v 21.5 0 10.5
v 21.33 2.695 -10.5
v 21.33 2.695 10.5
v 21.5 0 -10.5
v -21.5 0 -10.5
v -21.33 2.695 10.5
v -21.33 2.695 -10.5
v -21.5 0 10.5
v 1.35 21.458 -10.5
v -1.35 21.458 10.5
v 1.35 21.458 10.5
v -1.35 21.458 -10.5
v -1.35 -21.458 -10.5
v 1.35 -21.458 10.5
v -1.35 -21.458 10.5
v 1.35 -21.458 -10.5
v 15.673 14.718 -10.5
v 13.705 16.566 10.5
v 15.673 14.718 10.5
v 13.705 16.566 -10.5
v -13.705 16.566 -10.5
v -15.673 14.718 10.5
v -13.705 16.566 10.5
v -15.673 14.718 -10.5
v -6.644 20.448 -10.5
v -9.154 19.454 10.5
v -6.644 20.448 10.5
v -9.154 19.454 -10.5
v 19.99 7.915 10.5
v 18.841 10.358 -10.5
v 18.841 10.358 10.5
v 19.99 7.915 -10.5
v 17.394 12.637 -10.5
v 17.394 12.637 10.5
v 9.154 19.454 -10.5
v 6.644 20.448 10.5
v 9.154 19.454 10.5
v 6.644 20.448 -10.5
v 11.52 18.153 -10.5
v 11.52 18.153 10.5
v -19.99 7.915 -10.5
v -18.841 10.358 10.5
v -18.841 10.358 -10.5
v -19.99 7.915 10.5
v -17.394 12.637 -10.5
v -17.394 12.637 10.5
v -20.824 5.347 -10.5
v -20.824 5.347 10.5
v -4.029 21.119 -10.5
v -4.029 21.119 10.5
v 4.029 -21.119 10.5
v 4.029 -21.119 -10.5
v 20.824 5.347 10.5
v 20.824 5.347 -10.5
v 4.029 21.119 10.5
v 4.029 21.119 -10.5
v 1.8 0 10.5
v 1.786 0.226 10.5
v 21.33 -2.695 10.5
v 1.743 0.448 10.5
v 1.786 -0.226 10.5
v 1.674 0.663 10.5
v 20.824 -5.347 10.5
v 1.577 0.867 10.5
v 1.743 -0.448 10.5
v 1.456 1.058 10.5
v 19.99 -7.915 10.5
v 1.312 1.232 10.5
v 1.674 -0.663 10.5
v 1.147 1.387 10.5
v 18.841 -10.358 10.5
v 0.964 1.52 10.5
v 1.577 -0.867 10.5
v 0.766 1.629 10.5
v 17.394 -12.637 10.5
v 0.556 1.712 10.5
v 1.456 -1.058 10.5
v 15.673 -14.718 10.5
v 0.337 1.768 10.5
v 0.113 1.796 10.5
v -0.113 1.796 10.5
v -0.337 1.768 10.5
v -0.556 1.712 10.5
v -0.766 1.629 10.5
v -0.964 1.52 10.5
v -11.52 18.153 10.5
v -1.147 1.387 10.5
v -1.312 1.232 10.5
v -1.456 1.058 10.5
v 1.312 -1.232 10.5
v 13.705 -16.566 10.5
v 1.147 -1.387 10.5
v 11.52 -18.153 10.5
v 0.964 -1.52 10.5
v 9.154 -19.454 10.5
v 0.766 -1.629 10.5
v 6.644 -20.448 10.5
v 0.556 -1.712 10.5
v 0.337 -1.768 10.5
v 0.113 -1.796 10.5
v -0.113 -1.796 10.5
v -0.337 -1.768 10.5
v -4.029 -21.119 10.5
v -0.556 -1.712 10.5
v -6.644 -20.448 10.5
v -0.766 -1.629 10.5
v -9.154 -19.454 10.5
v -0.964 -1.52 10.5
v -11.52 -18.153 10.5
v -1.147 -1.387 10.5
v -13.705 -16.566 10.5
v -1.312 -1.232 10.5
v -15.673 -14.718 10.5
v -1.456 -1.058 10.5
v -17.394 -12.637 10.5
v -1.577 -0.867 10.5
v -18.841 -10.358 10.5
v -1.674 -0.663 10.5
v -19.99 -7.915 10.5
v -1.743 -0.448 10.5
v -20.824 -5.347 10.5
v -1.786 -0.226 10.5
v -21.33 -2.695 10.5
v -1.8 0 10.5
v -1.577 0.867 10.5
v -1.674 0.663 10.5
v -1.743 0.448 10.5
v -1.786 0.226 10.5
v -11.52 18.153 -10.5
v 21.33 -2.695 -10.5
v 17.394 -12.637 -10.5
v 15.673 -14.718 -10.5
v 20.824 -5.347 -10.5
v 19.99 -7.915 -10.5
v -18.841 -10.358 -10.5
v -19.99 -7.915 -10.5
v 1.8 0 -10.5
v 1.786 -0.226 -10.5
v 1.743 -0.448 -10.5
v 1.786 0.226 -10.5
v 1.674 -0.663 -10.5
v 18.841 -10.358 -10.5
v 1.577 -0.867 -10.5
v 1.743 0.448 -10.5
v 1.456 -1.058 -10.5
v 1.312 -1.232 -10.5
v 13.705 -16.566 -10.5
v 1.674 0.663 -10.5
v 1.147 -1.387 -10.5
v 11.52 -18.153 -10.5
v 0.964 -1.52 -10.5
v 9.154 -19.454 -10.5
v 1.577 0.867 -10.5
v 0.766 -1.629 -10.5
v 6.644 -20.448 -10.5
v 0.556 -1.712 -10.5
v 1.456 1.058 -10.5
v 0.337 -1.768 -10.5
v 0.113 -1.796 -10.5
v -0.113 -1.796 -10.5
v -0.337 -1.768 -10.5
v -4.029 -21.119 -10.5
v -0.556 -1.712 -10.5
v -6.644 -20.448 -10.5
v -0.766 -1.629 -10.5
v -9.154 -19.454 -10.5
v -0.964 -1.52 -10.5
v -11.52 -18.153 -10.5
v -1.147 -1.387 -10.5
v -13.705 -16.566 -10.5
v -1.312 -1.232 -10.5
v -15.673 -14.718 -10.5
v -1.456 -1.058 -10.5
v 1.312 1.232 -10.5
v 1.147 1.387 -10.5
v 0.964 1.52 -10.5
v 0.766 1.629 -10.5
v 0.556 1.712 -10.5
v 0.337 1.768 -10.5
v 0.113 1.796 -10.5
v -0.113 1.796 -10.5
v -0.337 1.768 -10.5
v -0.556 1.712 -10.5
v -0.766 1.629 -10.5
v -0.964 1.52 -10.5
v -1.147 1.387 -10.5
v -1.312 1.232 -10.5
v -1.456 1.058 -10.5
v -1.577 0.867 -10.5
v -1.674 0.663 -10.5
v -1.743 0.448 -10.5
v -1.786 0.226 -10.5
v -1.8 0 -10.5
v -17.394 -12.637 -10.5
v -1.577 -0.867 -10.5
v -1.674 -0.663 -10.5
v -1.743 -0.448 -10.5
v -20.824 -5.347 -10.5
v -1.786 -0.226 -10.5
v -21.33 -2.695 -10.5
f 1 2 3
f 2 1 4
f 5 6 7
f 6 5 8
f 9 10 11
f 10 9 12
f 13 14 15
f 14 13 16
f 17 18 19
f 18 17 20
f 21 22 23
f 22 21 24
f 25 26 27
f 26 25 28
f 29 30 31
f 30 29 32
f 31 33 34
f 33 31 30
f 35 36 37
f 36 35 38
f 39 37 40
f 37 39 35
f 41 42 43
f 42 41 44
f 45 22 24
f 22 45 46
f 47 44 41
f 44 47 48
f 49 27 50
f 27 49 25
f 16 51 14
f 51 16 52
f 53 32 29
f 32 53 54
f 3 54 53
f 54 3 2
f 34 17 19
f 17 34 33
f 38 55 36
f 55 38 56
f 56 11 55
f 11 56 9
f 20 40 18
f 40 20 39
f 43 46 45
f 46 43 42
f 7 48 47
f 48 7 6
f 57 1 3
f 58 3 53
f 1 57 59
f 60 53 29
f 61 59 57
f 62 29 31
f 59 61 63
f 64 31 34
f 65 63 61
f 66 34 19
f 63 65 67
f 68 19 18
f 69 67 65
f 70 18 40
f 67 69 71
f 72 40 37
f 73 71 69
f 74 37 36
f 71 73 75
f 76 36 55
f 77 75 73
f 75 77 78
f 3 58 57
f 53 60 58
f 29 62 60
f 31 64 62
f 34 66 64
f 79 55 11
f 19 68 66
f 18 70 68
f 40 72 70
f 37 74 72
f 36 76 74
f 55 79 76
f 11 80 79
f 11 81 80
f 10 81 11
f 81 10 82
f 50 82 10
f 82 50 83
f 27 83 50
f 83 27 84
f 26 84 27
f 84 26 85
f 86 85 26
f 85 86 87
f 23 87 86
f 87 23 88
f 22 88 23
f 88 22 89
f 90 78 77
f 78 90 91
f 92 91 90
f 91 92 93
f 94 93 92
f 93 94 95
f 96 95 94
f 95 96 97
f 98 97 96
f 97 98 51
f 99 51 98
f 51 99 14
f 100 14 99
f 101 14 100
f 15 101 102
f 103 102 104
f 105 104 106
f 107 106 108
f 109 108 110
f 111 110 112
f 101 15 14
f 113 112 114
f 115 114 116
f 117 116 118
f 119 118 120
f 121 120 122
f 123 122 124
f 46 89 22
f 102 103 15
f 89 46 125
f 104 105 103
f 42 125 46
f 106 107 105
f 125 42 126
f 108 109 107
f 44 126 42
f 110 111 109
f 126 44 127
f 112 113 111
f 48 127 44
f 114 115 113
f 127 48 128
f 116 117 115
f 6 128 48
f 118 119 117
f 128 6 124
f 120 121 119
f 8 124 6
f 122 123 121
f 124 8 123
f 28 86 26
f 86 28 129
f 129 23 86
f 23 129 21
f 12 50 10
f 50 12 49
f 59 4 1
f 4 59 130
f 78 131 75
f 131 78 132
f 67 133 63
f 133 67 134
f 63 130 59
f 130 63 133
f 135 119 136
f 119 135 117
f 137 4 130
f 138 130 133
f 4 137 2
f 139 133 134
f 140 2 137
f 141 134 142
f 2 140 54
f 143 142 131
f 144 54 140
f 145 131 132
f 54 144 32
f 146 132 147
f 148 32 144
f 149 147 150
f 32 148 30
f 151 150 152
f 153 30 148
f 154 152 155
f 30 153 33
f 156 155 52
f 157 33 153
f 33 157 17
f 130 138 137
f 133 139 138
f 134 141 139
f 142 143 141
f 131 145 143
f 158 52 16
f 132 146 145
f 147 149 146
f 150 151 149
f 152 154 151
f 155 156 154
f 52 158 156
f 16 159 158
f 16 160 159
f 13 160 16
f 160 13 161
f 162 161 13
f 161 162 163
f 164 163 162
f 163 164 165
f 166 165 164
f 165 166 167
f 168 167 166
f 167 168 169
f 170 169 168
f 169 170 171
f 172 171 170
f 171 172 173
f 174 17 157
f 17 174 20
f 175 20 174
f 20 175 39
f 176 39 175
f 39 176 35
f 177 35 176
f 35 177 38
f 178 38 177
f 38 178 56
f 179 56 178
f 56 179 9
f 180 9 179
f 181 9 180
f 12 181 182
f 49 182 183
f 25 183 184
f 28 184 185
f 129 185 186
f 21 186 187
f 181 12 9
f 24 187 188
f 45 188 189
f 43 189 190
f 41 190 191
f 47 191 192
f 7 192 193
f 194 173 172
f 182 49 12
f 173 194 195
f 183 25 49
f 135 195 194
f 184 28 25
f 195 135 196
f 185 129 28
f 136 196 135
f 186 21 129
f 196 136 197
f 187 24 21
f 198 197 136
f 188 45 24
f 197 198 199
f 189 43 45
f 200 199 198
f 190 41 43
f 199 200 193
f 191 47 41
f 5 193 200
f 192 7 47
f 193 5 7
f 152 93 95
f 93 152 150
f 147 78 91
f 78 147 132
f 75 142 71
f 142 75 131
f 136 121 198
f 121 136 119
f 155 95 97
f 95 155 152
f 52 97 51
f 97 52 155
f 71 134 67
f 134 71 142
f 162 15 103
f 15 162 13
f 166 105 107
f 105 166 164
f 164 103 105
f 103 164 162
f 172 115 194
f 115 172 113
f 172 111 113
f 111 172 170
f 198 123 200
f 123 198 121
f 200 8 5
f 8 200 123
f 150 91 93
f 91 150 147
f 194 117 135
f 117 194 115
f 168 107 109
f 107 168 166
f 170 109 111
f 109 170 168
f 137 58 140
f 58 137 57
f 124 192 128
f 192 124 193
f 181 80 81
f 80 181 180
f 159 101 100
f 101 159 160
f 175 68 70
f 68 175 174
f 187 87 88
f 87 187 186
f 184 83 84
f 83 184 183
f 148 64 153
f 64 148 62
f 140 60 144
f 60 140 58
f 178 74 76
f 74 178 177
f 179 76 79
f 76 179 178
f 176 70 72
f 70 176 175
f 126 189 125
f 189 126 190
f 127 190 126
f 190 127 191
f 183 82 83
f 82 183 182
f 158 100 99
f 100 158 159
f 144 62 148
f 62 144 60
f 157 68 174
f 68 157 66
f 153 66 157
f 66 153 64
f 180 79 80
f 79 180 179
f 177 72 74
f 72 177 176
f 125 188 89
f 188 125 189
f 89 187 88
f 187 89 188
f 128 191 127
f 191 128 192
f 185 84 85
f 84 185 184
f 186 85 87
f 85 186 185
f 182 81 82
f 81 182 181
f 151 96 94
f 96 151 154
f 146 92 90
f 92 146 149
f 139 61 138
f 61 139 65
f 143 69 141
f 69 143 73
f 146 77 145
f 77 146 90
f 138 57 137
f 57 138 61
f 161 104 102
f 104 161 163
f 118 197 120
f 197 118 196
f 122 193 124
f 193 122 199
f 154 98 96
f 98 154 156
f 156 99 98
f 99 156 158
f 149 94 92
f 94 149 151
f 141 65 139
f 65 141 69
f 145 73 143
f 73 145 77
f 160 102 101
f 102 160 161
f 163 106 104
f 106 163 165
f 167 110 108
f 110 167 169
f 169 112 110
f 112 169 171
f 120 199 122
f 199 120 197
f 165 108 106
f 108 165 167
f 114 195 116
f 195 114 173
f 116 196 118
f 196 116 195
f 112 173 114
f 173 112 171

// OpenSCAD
$fn = 50;


difference() {
	union() {
		translate(v = [0, 0, -10.5000000000]) {
			cylinder(h = 21, r = 21.5000000000);
		}
	}
	union() {
		translate(v = [0, 0, -100.0000000000]) {
			cylinder(h = 200, r = 1.8000000000);
		}
	}
}
